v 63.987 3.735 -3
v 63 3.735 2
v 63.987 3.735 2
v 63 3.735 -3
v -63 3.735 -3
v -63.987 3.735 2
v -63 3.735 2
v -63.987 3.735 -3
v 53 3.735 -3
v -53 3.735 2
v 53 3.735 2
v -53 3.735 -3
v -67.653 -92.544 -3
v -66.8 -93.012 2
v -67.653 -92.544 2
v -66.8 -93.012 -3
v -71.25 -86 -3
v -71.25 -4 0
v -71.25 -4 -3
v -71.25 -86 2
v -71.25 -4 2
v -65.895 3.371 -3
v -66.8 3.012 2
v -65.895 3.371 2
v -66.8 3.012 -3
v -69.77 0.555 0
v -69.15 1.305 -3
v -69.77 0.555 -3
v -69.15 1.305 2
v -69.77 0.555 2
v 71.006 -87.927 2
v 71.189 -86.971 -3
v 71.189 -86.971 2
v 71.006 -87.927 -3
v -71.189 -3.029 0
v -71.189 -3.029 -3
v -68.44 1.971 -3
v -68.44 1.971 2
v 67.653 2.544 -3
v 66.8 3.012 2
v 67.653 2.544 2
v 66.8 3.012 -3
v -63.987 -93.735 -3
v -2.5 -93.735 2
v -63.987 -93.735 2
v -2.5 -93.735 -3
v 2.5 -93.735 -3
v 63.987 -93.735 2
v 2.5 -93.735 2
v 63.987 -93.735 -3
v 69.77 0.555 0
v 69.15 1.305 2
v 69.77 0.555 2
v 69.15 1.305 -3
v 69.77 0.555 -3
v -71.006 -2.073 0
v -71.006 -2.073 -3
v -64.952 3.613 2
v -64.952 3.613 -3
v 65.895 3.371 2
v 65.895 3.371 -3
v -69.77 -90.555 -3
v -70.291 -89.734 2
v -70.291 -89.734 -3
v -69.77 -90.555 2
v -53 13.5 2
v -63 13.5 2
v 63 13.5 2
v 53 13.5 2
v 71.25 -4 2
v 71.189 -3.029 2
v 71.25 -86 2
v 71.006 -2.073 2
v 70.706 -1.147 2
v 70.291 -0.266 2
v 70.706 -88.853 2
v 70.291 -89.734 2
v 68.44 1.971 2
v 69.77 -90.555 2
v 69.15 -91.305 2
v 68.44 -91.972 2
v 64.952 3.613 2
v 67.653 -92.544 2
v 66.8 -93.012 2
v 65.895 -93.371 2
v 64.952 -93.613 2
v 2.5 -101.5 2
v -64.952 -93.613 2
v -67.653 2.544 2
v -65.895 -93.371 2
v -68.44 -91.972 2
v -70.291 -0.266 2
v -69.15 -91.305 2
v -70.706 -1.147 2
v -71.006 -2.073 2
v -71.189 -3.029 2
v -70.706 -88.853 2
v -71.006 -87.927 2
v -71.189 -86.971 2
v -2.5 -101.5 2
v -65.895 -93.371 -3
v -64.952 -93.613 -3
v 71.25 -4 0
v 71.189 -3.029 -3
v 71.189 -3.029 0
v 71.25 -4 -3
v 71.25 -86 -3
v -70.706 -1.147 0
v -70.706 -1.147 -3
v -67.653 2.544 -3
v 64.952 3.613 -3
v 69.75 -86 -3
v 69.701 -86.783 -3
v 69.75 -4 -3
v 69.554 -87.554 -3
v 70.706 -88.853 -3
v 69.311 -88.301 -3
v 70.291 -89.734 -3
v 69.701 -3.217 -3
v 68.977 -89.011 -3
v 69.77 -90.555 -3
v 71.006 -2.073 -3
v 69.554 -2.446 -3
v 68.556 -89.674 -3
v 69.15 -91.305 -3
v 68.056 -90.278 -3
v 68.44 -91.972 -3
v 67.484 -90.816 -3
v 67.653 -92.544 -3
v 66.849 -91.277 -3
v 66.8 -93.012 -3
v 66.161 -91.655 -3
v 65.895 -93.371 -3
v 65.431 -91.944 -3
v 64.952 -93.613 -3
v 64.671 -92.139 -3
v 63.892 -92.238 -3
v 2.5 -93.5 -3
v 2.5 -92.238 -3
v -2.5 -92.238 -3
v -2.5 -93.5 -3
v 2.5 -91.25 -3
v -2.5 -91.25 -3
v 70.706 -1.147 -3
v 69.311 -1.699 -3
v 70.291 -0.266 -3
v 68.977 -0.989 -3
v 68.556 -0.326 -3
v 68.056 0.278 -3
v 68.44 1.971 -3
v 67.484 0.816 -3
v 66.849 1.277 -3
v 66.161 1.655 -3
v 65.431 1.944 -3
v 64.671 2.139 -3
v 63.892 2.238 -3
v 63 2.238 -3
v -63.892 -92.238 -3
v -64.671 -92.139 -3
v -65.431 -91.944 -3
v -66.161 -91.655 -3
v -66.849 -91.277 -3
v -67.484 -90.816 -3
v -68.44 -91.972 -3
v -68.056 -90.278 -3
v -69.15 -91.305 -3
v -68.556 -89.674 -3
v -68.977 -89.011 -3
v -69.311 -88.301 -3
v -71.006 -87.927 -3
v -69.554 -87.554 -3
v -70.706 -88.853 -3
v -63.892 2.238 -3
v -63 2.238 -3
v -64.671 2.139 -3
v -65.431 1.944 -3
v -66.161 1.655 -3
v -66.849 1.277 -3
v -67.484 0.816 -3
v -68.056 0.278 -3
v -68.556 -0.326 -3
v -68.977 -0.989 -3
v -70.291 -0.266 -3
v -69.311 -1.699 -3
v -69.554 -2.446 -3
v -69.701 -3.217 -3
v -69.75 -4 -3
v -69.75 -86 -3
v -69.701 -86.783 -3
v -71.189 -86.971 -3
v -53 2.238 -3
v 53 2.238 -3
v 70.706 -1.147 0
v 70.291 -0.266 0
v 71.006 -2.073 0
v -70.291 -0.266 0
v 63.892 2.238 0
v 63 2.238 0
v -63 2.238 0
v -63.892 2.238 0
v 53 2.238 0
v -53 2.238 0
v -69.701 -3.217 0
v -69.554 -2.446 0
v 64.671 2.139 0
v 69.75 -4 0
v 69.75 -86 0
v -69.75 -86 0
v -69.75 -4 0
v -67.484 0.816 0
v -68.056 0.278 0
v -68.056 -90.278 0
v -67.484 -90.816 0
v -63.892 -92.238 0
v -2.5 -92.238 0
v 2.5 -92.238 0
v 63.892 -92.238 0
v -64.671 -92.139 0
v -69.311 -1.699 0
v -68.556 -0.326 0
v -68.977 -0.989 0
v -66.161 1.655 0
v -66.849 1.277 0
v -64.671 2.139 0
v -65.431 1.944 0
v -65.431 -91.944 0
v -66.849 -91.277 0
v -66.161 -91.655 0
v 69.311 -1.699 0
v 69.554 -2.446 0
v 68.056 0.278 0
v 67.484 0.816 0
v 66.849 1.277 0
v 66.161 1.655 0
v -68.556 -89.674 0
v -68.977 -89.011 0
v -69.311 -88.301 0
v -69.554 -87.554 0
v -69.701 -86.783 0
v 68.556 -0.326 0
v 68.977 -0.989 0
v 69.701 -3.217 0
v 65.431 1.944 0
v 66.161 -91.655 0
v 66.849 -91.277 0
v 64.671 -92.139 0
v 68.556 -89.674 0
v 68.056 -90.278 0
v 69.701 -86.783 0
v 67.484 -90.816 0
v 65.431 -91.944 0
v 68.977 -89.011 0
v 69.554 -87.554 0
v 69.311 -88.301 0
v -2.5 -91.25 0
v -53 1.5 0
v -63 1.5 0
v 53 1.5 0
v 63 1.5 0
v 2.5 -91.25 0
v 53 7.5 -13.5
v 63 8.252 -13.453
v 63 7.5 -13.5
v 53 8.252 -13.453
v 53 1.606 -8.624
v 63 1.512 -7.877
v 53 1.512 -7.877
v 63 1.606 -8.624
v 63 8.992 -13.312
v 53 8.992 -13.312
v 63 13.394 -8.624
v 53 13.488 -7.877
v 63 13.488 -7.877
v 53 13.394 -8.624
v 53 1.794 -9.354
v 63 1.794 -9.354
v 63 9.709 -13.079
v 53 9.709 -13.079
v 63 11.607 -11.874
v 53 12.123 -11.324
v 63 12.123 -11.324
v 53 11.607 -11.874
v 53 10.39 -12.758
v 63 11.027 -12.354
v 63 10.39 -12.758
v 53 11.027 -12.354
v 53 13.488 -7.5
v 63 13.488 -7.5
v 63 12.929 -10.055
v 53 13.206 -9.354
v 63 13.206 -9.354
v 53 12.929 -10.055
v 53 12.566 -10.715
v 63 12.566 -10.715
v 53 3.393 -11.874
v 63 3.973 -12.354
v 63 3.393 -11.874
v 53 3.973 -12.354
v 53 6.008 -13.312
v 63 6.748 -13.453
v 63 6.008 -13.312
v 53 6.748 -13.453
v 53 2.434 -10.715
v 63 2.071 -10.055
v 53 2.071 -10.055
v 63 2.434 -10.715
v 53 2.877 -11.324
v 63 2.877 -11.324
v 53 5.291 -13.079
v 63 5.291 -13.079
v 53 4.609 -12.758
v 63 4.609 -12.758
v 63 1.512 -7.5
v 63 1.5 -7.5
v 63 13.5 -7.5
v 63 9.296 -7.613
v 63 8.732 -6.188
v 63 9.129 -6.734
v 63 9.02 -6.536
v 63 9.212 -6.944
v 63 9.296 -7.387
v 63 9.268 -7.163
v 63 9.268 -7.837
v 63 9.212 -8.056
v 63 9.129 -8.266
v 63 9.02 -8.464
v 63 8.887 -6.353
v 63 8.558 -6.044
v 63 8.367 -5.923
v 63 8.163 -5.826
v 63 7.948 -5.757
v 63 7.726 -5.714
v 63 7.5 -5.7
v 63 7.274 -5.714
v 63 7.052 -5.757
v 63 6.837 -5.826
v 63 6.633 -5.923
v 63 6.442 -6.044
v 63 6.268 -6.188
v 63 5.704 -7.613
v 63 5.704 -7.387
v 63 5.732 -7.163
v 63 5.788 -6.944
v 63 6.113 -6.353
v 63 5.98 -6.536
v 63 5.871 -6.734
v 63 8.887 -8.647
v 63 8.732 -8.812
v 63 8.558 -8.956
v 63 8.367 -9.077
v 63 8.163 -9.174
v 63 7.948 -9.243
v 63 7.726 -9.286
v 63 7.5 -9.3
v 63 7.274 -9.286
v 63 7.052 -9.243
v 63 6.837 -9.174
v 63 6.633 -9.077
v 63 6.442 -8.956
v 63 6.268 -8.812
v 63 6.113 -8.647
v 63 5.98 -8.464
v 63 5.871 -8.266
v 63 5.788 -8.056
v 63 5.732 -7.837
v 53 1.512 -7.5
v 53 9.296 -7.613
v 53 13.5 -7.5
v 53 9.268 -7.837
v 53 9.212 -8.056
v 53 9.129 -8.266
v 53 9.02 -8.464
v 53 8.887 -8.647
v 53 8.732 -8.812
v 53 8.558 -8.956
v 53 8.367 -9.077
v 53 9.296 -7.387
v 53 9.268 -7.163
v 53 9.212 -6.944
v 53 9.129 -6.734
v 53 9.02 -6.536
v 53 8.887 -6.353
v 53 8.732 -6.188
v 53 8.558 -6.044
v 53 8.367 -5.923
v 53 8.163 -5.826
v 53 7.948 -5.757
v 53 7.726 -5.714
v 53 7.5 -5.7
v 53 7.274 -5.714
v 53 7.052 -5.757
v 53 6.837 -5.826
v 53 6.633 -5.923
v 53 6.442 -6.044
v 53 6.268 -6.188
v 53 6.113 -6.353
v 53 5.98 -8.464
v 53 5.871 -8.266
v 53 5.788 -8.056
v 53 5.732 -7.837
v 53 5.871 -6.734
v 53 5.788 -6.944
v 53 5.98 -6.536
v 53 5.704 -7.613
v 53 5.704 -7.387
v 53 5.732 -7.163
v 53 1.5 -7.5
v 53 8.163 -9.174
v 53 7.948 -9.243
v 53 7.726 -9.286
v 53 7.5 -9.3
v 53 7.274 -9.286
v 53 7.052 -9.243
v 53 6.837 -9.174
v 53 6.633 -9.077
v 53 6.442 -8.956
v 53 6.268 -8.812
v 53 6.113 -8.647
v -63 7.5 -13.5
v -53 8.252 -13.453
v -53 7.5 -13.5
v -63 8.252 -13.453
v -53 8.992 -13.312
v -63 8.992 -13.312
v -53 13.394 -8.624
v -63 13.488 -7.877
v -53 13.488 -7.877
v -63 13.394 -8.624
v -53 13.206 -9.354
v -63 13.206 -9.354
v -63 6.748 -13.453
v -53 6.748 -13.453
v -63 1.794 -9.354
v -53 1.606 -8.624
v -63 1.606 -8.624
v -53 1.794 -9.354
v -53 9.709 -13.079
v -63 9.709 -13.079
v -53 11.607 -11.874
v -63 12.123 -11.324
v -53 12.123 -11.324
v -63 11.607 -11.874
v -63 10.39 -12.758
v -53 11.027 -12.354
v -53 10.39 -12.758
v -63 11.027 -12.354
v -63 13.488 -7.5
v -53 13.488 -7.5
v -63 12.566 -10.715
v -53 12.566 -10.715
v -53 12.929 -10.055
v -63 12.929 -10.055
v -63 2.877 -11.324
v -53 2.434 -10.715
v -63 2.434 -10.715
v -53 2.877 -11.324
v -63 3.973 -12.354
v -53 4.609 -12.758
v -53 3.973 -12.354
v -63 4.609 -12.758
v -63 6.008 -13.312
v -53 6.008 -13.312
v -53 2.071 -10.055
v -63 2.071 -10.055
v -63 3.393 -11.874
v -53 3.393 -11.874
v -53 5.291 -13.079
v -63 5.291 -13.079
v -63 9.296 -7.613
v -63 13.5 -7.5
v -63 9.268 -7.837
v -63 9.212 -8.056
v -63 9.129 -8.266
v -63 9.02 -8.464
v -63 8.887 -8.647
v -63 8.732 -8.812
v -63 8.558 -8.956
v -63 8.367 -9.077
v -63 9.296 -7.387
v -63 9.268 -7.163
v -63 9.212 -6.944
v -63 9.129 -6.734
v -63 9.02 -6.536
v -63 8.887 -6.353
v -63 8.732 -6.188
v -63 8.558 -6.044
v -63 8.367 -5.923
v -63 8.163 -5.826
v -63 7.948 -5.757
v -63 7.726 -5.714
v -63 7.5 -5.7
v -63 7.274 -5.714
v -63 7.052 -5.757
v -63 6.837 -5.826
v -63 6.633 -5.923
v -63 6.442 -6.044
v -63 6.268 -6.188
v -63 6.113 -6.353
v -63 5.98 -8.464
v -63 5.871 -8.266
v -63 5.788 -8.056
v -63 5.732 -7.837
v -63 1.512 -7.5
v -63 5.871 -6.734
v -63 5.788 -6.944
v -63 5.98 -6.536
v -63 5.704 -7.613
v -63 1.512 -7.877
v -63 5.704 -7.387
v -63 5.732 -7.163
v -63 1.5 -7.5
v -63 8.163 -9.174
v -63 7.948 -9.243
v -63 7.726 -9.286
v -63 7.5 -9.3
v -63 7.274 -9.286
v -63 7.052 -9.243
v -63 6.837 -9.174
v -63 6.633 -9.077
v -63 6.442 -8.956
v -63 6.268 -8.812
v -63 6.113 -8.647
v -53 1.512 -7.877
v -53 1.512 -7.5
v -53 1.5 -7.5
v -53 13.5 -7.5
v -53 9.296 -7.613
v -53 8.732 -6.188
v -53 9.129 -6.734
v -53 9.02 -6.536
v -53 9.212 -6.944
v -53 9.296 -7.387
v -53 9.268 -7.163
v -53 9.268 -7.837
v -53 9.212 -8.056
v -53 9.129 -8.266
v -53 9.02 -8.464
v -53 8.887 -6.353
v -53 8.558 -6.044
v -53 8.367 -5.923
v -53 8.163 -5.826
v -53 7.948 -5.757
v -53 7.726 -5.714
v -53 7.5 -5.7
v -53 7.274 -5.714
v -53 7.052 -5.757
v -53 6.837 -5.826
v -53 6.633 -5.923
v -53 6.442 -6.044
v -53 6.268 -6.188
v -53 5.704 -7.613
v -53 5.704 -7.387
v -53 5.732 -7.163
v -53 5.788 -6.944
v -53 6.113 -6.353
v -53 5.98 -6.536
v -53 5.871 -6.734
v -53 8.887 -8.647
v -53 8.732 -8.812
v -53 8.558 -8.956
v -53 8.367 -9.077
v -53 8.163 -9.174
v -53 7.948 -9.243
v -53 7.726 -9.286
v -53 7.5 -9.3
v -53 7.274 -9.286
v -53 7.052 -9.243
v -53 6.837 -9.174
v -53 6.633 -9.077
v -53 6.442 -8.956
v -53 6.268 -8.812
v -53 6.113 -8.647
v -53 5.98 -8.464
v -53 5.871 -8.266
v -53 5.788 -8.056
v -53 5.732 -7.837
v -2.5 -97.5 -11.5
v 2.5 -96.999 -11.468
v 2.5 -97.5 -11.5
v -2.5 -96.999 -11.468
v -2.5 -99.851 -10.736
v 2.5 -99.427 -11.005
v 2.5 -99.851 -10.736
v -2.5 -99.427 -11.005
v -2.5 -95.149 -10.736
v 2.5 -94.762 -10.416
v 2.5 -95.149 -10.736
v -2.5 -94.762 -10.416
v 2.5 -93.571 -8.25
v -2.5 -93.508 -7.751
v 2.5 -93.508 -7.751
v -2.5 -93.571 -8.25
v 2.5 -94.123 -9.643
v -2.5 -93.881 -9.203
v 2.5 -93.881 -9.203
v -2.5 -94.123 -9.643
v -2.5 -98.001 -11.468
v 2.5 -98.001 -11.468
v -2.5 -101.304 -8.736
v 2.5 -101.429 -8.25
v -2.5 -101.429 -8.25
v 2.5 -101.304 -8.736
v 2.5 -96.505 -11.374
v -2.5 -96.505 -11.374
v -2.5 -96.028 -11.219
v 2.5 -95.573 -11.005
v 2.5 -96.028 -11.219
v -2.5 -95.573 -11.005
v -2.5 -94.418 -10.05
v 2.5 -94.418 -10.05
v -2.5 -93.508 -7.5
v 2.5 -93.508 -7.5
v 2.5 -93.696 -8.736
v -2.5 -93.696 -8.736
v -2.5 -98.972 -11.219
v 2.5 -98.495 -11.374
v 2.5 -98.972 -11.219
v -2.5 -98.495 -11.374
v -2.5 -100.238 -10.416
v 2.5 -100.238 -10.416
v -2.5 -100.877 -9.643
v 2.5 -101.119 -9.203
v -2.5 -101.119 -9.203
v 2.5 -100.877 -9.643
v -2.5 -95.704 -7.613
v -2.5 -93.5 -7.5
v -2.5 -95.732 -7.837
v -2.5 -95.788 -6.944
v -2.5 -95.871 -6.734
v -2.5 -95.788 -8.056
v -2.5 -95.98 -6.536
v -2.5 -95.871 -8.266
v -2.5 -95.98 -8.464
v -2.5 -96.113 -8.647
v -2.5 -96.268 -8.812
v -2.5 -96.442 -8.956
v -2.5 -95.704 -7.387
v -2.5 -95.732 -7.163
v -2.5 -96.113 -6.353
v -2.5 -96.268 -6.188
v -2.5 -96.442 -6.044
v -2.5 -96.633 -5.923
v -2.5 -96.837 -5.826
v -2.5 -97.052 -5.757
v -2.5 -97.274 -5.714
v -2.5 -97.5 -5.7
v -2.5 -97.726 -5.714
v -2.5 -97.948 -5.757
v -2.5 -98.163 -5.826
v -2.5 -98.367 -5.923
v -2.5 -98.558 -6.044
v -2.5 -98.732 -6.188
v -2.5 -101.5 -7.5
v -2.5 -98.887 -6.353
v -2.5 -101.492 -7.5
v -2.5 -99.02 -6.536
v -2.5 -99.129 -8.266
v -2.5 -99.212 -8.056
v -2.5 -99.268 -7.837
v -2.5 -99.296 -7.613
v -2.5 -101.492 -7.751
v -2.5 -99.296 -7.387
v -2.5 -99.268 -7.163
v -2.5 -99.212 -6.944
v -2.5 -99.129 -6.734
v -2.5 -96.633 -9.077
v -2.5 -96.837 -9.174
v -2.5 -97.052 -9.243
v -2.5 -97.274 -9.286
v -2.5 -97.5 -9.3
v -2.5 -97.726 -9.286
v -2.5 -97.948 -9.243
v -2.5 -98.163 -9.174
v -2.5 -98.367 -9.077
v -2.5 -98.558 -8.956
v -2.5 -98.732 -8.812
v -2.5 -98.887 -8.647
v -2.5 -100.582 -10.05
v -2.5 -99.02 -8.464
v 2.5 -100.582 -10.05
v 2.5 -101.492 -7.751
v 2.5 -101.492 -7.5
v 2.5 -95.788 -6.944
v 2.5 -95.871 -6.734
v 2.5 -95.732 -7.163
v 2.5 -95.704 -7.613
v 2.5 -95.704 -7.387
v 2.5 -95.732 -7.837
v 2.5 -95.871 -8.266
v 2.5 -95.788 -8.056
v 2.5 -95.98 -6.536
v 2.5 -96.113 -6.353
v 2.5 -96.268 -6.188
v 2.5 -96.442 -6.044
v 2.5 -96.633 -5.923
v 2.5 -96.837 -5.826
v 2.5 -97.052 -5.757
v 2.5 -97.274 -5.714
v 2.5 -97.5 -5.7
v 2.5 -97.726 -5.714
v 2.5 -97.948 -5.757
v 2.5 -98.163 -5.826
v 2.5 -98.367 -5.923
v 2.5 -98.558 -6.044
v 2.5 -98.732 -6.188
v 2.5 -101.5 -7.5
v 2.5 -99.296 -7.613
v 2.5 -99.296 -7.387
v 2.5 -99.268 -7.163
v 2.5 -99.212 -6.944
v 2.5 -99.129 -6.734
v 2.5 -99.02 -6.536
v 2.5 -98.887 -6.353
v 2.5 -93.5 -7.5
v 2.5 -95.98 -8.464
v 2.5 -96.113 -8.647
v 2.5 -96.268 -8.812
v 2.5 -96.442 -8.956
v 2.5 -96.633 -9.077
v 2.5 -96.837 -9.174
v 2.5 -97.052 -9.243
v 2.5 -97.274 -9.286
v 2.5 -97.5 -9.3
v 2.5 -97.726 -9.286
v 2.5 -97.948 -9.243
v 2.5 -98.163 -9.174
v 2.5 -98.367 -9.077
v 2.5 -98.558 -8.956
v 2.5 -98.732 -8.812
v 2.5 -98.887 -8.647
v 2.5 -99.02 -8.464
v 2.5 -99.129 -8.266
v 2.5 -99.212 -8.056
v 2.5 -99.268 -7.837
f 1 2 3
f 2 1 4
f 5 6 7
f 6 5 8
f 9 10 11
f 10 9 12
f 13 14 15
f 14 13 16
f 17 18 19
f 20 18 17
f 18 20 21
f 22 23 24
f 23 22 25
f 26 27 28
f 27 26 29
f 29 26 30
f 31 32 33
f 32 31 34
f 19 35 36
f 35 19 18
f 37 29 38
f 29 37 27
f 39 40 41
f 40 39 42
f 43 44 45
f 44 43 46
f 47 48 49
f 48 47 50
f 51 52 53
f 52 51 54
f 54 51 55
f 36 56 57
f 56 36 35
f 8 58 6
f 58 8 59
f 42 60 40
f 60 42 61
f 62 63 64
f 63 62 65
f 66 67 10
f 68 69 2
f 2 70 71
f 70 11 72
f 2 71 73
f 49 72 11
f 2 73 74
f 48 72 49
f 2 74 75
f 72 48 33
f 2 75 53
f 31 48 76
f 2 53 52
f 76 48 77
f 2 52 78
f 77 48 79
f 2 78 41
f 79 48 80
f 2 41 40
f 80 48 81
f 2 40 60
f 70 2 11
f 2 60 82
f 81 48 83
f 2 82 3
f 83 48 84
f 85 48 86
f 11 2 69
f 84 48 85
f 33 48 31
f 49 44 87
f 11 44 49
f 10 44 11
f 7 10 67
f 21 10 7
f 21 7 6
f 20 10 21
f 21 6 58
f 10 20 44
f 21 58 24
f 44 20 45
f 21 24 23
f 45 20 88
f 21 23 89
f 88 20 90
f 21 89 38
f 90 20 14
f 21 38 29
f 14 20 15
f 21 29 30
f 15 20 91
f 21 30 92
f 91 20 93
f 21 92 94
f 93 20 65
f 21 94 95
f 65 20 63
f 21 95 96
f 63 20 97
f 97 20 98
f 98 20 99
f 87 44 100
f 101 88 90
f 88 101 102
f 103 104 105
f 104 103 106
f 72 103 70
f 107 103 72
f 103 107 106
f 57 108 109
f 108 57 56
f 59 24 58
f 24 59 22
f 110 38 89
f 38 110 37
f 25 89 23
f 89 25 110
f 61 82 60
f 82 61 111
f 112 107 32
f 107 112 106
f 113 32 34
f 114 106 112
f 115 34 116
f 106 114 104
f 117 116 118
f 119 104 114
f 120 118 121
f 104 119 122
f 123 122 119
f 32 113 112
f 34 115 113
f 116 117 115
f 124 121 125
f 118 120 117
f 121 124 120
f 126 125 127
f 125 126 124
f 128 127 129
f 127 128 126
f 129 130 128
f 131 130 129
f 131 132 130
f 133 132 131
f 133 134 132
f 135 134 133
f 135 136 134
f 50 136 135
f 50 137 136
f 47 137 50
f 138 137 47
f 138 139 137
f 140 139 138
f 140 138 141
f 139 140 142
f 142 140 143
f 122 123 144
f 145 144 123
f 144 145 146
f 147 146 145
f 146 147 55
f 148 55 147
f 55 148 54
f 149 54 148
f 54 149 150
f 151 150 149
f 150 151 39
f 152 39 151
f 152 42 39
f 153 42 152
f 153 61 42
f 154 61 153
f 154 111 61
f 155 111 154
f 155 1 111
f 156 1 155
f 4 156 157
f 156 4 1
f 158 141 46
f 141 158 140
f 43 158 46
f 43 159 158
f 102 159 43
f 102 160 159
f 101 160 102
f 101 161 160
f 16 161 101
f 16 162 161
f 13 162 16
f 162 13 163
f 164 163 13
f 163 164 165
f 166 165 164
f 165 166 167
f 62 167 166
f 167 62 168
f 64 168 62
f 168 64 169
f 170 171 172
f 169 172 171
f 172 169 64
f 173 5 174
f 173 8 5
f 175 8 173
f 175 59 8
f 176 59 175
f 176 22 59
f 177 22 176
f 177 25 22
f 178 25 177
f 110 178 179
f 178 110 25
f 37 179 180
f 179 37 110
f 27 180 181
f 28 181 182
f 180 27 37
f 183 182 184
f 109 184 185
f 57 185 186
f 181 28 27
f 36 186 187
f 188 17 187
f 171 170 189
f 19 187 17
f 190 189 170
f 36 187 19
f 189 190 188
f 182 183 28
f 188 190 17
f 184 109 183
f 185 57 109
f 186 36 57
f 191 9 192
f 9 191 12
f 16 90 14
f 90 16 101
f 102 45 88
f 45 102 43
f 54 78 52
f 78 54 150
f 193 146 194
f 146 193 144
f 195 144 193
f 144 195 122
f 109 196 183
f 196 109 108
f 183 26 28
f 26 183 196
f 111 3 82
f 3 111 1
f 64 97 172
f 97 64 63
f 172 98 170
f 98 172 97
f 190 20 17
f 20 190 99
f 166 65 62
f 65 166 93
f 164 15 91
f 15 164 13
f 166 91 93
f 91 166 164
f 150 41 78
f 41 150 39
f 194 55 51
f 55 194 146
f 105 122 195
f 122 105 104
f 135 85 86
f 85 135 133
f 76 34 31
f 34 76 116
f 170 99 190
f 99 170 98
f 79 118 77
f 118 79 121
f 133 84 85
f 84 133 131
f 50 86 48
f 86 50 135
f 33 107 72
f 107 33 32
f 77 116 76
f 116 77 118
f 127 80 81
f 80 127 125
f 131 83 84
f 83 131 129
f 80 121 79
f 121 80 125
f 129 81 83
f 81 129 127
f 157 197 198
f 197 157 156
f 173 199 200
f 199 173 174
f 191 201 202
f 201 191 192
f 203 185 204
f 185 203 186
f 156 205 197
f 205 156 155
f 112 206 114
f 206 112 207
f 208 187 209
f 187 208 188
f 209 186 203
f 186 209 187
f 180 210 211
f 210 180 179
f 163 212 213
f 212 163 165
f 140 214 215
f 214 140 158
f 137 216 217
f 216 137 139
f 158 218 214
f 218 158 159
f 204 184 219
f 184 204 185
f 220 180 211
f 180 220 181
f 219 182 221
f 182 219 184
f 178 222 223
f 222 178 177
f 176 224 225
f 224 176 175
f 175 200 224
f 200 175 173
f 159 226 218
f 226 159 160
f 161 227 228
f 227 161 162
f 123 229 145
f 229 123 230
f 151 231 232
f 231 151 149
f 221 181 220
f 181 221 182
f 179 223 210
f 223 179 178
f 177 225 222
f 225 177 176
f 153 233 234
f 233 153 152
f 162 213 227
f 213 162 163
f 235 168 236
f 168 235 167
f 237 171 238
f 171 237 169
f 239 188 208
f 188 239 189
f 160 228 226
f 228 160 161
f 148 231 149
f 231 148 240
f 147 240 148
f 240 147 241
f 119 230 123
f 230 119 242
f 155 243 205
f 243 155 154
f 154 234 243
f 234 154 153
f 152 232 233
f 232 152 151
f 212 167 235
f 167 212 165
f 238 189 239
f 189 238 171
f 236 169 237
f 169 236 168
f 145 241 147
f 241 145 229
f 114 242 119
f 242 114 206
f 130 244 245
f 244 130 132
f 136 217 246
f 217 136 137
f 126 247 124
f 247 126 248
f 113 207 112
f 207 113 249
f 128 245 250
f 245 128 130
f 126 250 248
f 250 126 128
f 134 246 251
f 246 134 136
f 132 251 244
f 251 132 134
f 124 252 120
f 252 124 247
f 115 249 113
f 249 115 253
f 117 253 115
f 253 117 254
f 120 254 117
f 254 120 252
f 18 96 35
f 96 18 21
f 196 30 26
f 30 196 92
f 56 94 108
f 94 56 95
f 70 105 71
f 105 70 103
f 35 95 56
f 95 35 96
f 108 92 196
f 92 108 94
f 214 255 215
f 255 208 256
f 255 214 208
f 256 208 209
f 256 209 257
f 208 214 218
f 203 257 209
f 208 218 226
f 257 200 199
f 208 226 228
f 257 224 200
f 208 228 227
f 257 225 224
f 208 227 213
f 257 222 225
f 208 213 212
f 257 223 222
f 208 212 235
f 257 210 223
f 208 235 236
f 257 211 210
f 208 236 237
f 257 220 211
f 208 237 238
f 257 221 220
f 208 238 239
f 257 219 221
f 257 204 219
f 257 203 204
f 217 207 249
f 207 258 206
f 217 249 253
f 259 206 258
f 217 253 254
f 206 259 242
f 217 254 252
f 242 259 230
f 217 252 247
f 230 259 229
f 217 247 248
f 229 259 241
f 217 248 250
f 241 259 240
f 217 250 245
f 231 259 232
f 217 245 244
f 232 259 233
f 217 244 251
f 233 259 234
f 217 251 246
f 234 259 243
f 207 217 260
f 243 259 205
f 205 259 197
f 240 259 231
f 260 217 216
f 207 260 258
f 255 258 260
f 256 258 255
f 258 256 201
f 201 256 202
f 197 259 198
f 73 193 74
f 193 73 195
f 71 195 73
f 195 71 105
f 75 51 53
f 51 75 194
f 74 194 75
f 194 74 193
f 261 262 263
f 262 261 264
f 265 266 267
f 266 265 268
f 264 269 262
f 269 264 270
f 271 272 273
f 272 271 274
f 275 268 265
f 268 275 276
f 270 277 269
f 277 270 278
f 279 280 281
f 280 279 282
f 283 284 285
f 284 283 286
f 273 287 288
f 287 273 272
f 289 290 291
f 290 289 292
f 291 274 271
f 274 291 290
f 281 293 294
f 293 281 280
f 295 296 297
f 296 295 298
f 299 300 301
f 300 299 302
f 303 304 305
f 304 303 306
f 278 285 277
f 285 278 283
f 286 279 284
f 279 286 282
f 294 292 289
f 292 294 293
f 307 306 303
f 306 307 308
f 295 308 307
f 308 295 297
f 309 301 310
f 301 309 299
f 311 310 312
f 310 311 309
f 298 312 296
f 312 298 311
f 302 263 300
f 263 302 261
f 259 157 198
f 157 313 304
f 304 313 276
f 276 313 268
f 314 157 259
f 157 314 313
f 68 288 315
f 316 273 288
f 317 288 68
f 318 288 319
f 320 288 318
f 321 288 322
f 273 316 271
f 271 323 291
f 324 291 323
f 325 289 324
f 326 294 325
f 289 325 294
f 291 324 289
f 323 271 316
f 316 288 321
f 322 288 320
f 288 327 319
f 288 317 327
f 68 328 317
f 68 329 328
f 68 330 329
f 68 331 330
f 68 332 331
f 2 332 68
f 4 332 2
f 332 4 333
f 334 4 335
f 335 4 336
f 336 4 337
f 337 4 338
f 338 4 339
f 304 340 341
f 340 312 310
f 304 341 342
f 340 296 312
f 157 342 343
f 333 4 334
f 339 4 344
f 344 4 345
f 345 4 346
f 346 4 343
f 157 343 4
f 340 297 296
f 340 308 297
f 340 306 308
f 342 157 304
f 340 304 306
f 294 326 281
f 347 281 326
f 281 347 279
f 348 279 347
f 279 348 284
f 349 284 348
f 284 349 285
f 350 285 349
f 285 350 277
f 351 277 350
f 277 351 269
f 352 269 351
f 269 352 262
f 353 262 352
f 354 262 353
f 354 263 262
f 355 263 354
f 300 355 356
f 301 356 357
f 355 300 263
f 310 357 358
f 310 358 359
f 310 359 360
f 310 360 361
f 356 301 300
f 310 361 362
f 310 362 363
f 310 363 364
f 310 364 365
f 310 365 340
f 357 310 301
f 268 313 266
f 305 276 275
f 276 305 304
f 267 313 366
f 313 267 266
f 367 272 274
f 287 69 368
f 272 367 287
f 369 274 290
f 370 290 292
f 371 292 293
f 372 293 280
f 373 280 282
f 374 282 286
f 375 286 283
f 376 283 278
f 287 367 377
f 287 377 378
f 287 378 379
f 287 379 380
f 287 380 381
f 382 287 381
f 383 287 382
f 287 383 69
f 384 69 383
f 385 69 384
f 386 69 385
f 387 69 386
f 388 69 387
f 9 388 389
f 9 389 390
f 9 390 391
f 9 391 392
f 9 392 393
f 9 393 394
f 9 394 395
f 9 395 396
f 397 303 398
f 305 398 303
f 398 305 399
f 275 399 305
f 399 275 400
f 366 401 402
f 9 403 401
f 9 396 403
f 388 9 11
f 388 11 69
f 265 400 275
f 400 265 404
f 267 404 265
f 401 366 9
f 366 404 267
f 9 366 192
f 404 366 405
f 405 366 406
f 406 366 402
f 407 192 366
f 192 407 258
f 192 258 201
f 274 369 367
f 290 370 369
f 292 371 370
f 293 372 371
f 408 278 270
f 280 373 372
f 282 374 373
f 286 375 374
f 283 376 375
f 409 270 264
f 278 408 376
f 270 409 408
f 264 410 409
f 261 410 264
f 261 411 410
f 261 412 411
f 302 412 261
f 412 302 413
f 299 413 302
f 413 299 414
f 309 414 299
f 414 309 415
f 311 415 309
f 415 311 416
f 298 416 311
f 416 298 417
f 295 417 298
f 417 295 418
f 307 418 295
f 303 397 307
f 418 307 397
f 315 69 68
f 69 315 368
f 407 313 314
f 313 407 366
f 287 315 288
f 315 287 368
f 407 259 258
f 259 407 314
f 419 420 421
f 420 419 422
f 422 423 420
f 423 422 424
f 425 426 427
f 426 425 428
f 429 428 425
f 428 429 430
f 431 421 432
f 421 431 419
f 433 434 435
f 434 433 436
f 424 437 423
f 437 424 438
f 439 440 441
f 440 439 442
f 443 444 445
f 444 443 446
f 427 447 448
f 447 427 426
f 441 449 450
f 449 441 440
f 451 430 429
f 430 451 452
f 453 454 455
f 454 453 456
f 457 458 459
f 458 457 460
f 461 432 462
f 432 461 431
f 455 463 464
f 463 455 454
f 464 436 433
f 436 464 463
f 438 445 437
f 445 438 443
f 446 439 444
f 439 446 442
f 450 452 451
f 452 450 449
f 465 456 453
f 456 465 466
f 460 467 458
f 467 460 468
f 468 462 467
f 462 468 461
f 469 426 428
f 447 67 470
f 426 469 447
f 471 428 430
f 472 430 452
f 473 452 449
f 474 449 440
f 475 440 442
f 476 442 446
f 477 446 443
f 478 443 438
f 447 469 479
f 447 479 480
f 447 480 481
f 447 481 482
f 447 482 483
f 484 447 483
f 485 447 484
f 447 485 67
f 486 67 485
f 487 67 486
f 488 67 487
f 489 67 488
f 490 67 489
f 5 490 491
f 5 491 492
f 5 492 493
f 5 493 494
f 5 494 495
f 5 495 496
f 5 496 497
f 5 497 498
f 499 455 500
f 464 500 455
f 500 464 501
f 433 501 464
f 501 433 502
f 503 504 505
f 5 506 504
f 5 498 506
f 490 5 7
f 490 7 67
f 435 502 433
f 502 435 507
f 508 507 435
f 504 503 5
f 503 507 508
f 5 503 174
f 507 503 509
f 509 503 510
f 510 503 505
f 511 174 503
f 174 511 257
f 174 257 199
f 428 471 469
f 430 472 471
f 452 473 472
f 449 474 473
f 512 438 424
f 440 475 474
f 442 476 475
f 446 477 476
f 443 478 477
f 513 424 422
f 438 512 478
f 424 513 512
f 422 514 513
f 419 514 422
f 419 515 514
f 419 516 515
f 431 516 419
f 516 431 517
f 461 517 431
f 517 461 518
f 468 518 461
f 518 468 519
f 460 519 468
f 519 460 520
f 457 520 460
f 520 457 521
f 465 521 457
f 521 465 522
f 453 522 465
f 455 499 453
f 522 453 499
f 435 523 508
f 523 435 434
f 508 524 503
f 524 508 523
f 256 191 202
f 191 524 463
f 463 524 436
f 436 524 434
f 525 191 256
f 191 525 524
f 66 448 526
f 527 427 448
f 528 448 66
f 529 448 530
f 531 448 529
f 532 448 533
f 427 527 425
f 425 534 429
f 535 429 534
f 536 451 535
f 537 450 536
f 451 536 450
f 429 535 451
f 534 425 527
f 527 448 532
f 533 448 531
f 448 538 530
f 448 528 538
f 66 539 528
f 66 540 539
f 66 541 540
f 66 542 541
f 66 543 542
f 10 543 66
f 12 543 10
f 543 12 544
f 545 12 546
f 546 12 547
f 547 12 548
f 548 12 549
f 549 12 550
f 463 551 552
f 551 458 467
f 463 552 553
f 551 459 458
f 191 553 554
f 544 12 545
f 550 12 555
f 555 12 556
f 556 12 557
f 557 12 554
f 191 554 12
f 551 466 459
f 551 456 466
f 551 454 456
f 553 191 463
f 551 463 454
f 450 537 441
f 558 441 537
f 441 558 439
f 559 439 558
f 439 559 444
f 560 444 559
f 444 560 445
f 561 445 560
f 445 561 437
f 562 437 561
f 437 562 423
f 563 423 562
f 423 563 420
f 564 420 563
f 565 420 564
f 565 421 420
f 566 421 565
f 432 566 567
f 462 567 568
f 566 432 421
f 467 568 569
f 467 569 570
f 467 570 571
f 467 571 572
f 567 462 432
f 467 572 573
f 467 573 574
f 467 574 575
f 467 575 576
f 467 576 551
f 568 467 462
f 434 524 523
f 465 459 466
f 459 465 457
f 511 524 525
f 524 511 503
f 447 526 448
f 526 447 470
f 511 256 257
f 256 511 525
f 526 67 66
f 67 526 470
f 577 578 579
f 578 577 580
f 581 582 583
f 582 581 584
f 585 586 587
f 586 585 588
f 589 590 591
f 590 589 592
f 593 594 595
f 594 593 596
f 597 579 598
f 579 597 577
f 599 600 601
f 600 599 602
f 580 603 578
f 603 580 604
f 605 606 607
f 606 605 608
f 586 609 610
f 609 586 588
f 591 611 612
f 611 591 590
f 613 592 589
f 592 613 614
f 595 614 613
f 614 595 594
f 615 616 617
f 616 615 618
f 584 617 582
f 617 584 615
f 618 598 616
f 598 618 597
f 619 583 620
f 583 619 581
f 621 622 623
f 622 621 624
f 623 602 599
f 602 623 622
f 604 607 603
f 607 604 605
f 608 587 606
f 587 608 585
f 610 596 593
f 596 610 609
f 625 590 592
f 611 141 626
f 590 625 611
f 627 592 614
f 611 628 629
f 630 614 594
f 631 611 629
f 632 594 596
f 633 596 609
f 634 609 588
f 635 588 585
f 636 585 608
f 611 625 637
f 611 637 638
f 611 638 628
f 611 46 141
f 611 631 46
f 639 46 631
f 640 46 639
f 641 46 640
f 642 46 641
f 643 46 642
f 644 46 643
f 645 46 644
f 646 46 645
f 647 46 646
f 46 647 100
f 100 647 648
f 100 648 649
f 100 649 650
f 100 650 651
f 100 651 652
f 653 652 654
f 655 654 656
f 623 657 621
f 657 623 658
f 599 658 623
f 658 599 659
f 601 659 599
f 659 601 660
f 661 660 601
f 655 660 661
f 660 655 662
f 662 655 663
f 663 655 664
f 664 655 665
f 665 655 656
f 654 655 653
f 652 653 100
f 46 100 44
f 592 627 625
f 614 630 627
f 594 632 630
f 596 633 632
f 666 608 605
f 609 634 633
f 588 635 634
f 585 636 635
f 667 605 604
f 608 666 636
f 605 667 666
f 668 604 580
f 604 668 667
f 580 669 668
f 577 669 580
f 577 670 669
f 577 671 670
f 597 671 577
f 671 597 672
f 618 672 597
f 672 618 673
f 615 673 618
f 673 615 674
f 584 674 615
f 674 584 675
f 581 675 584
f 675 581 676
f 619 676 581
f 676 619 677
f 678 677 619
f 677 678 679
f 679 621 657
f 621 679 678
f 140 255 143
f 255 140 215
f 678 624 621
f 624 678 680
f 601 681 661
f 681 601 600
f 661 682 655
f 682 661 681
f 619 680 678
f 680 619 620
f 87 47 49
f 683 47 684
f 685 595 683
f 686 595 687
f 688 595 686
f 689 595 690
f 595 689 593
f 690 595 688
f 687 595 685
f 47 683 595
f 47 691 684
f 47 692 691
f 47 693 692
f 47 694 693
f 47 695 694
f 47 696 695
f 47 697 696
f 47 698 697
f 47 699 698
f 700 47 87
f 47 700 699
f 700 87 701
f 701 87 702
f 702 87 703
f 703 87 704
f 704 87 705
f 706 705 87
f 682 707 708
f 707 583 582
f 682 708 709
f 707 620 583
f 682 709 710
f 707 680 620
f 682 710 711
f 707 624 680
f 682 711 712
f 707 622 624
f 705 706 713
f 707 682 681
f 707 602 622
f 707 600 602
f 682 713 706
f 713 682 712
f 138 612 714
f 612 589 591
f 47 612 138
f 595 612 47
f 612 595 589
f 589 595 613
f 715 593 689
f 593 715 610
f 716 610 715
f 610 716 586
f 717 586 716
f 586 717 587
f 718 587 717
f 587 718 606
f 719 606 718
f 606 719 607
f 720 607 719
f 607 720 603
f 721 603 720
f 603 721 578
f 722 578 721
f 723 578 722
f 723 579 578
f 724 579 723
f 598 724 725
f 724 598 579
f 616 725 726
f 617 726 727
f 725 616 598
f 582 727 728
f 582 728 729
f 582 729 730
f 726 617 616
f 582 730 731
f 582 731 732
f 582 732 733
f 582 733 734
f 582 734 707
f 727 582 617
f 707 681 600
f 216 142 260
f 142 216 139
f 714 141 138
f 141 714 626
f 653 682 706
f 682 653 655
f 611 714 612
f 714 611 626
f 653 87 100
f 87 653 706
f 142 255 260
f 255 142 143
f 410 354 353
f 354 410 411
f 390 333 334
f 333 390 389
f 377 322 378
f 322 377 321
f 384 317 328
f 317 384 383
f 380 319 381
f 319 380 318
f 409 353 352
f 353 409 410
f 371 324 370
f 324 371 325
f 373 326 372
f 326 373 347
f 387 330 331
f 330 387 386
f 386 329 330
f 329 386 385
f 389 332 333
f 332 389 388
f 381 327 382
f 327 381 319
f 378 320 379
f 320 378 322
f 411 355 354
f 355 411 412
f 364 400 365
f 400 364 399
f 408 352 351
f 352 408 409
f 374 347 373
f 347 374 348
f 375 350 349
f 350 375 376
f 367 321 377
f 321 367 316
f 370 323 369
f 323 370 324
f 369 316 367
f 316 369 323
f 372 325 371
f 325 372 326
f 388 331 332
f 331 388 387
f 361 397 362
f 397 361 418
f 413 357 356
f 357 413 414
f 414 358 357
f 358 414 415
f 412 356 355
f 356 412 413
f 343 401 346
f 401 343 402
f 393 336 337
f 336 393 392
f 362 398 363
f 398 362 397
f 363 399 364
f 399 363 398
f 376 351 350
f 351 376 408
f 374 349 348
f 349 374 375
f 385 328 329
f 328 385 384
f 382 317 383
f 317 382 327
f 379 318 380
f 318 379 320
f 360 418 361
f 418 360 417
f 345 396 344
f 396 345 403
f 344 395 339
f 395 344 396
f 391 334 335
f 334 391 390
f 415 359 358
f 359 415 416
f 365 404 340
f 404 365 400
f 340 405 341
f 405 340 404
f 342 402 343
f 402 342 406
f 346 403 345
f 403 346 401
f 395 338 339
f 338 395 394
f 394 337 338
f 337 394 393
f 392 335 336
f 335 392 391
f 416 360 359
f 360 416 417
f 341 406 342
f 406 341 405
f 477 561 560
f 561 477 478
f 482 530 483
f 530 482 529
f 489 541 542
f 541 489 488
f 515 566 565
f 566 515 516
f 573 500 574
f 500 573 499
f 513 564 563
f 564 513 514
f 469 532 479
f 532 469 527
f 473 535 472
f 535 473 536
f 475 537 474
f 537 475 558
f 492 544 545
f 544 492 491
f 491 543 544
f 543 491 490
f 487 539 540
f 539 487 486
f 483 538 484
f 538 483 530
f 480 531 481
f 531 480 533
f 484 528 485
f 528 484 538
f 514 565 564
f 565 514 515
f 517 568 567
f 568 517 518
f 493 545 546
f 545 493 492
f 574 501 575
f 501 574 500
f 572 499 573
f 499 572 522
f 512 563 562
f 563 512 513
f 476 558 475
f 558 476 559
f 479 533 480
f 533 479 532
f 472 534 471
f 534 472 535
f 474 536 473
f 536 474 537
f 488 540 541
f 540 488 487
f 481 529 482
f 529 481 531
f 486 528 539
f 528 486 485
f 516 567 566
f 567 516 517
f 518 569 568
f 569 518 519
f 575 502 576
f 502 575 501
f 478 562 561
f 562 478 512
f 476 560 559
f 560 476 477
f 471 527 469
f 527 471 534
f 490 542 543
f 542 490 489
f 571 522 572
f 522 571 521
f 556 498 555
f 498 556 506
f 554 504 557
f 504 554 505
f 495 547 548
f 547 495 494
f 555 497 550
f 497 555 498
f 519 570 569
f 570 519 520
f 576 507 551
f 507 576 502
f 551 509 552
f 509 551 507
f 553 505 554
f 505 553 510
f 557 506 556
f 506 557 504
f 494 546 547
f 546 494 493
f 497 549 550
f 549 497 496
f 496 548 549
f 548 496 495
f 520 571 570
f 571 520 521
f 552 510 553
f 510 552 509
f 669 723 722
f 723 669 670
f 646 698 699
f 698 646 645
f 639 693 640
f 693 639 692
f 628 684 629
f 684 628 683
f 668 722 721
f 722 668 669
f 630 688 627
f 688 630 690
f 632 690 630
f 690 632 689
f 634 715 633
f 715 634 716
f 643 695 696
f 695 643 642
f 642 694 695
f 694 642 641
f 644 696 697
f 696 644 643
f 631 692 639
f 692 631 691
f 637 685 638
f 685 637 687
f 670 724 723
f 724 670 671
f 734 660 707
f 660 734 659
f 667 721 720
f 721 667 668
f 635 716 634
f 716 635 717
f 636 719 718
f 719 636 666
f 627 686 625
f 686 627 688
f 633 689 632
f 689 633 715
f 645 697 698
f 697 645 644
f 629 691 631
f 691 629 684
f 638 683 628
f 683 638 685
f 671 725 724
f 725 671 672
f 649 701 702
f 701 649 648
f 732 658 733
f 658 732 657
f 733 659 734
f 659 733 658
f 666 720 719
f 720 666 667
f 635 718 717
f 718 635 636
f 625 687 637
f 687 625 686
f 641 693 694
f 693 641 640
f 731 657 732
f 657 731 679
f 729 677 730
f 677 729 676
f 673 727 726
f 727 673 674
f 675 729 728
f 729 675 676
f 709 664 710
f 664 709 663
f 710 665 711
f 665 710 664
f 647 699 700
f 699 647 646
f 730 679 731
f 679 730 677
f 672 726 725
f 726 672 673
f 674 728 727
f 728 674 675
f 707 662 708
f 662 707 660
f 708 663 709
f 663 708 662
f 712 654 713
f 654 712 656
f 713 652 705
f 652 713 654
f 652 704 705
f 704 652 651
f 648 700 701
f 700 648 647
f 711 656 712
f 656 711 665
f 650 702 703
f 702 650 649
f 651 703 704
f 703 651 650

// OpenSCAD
$fn = 50;


difference() {
	union() {
		translate(v = [0, -45.0000000000, -3]) {
			rotate(a = [0, 0, 0]) {
				difference() {
					union() {
						hull() {
							translate(v = [-63.5000000000, 41.0000000000, 0]) {
								cylinder(h = 5, r = 7.7500000000);
							}
							translate(v = [63.5000000000, 41.0000000000, 0]) {
								cylinder(h = 5, r = 7.7500000000);
							}
							translate(v = [-63.5000000000, -41.0000000000, 0]) {
								cylinder(h = 5, r = 7.7500000000);
							}
							translate(v = [63.5000000000, -41.0000000000, 0]) {
								cylinder(h = 5, r = 7.7500000000);
							}
						}
					}
					union() {
						hull() {
							translate(v = [-63.5000000000, 41.0000000000, 0]) {
								cylinder(h = 5, r = 6.2500000000);
							}
							translate(v = [63.5000000000, 41.0000000000, 0]) {
								cylinder(h = 5, r = 6.2500000000);
							}
							translate(v = [-63.5000000000, -41.0000000000, 0]) {
								cylinder(h = 5, r = 6.2500000000);
							}
							translate(v = [63.5000000000, -41.0000000000, 0]) {
								cylinder(h = 5, r = 6.2500000000);
							}
						}
					}
				}
			}
		}
		translate(v = [0, -45.0000000000, 0]) {
			hull() {
				translate(v = [-63.5000000000, 41.0000000000, 0]) {
					cylinder(h = 2, r = 7.7500000000);
				}
				translate(v = [63.5000000000, 41.0000000000, 0]) {
					cylinder(h = 2, r = 7.7500000000);
				}
				translate(v = [-63.5000000000, -41.0000000000, 0]) {
					cylinder(h = 2, r = 7.7500000000);
				}
				translate(v = [63.5000000000, -41.0000000000, 0]) {
					cylinder(h = 2, r = 7.7500000000);
				}
			}
		}
		translate(v = [53.0000000000, 7.5000000000, -7.5000000000]) {
			rotate(a = [0, 90, 0]) {
				cylinder(h = 10, r = 6.0000000000);
			}
		}
		translate(v = [53.0000000000, 1.5000000000, -7.5000000000]) {
			cube(size = [10, 12, 7.5000000000]);
		}
		translate(v = [53.0000000000, -15.0000000000, 0.0000000000]) {
			cube(size = [10, 28.5000000000, 2]);
		}
		translate(v = [-63.0000000000, 7.5000000000, -7.5000000000]) {
			rotate(a = [0, 90, 0]) {
				cylinder(h = 10, r = 6.0000000000);
			}
		}
		translate(v = [-63.0000000000, 1.5000000000, -7.5000000000]) {
			cube(size = [10, 12, 7.5000000000]);
		}
		translate(v = [-63.0000000000, -15.0000000000, 0.0000000000]) {
			cube(size = [10, 28.5000000000, 2]);
		}
		translate(v = [-2.5000000000, -97.5000000000, -7.5000000000]) {
			rotate(a = [0, 90, 0]) {
				cylinder(h = 5, r = 4.0000000000);
			}
		}
		translate(v = [-2.5000000000, -101.5000000000, -7.5000000000]) {
			cube(size = [5, 8, 7.5000000000]);
		}
		translate(v = [-2.5000000000, -101.5000000000, -3.0000000000]) {
			cube(size = [5, 10.2500000000, 5]);
		}
	}
	union() {
		translate(v = [53.0000000000, 7.5000000000, -7.5000000000]) {
			rotate(a = [0, 90, 0]) {
				cylinder(h = 10, r = 1.8000000000);
			}
		}
		translate(v = [-63.0000000000, 7.5000000000, -7.5000000000]) {
			rotate(a = [0, 90, 0]) {
				cylinder(h = 10, r = 1.8000000000);
			}
		}
		translate(v = [-5.0000000000, -97.5000000000, -7.5000000000]) {
			rotate(a = [0, 90, 0]) {
				cylinder(h = 10, r = 1.8000000000);
			}
		}
	}
}
